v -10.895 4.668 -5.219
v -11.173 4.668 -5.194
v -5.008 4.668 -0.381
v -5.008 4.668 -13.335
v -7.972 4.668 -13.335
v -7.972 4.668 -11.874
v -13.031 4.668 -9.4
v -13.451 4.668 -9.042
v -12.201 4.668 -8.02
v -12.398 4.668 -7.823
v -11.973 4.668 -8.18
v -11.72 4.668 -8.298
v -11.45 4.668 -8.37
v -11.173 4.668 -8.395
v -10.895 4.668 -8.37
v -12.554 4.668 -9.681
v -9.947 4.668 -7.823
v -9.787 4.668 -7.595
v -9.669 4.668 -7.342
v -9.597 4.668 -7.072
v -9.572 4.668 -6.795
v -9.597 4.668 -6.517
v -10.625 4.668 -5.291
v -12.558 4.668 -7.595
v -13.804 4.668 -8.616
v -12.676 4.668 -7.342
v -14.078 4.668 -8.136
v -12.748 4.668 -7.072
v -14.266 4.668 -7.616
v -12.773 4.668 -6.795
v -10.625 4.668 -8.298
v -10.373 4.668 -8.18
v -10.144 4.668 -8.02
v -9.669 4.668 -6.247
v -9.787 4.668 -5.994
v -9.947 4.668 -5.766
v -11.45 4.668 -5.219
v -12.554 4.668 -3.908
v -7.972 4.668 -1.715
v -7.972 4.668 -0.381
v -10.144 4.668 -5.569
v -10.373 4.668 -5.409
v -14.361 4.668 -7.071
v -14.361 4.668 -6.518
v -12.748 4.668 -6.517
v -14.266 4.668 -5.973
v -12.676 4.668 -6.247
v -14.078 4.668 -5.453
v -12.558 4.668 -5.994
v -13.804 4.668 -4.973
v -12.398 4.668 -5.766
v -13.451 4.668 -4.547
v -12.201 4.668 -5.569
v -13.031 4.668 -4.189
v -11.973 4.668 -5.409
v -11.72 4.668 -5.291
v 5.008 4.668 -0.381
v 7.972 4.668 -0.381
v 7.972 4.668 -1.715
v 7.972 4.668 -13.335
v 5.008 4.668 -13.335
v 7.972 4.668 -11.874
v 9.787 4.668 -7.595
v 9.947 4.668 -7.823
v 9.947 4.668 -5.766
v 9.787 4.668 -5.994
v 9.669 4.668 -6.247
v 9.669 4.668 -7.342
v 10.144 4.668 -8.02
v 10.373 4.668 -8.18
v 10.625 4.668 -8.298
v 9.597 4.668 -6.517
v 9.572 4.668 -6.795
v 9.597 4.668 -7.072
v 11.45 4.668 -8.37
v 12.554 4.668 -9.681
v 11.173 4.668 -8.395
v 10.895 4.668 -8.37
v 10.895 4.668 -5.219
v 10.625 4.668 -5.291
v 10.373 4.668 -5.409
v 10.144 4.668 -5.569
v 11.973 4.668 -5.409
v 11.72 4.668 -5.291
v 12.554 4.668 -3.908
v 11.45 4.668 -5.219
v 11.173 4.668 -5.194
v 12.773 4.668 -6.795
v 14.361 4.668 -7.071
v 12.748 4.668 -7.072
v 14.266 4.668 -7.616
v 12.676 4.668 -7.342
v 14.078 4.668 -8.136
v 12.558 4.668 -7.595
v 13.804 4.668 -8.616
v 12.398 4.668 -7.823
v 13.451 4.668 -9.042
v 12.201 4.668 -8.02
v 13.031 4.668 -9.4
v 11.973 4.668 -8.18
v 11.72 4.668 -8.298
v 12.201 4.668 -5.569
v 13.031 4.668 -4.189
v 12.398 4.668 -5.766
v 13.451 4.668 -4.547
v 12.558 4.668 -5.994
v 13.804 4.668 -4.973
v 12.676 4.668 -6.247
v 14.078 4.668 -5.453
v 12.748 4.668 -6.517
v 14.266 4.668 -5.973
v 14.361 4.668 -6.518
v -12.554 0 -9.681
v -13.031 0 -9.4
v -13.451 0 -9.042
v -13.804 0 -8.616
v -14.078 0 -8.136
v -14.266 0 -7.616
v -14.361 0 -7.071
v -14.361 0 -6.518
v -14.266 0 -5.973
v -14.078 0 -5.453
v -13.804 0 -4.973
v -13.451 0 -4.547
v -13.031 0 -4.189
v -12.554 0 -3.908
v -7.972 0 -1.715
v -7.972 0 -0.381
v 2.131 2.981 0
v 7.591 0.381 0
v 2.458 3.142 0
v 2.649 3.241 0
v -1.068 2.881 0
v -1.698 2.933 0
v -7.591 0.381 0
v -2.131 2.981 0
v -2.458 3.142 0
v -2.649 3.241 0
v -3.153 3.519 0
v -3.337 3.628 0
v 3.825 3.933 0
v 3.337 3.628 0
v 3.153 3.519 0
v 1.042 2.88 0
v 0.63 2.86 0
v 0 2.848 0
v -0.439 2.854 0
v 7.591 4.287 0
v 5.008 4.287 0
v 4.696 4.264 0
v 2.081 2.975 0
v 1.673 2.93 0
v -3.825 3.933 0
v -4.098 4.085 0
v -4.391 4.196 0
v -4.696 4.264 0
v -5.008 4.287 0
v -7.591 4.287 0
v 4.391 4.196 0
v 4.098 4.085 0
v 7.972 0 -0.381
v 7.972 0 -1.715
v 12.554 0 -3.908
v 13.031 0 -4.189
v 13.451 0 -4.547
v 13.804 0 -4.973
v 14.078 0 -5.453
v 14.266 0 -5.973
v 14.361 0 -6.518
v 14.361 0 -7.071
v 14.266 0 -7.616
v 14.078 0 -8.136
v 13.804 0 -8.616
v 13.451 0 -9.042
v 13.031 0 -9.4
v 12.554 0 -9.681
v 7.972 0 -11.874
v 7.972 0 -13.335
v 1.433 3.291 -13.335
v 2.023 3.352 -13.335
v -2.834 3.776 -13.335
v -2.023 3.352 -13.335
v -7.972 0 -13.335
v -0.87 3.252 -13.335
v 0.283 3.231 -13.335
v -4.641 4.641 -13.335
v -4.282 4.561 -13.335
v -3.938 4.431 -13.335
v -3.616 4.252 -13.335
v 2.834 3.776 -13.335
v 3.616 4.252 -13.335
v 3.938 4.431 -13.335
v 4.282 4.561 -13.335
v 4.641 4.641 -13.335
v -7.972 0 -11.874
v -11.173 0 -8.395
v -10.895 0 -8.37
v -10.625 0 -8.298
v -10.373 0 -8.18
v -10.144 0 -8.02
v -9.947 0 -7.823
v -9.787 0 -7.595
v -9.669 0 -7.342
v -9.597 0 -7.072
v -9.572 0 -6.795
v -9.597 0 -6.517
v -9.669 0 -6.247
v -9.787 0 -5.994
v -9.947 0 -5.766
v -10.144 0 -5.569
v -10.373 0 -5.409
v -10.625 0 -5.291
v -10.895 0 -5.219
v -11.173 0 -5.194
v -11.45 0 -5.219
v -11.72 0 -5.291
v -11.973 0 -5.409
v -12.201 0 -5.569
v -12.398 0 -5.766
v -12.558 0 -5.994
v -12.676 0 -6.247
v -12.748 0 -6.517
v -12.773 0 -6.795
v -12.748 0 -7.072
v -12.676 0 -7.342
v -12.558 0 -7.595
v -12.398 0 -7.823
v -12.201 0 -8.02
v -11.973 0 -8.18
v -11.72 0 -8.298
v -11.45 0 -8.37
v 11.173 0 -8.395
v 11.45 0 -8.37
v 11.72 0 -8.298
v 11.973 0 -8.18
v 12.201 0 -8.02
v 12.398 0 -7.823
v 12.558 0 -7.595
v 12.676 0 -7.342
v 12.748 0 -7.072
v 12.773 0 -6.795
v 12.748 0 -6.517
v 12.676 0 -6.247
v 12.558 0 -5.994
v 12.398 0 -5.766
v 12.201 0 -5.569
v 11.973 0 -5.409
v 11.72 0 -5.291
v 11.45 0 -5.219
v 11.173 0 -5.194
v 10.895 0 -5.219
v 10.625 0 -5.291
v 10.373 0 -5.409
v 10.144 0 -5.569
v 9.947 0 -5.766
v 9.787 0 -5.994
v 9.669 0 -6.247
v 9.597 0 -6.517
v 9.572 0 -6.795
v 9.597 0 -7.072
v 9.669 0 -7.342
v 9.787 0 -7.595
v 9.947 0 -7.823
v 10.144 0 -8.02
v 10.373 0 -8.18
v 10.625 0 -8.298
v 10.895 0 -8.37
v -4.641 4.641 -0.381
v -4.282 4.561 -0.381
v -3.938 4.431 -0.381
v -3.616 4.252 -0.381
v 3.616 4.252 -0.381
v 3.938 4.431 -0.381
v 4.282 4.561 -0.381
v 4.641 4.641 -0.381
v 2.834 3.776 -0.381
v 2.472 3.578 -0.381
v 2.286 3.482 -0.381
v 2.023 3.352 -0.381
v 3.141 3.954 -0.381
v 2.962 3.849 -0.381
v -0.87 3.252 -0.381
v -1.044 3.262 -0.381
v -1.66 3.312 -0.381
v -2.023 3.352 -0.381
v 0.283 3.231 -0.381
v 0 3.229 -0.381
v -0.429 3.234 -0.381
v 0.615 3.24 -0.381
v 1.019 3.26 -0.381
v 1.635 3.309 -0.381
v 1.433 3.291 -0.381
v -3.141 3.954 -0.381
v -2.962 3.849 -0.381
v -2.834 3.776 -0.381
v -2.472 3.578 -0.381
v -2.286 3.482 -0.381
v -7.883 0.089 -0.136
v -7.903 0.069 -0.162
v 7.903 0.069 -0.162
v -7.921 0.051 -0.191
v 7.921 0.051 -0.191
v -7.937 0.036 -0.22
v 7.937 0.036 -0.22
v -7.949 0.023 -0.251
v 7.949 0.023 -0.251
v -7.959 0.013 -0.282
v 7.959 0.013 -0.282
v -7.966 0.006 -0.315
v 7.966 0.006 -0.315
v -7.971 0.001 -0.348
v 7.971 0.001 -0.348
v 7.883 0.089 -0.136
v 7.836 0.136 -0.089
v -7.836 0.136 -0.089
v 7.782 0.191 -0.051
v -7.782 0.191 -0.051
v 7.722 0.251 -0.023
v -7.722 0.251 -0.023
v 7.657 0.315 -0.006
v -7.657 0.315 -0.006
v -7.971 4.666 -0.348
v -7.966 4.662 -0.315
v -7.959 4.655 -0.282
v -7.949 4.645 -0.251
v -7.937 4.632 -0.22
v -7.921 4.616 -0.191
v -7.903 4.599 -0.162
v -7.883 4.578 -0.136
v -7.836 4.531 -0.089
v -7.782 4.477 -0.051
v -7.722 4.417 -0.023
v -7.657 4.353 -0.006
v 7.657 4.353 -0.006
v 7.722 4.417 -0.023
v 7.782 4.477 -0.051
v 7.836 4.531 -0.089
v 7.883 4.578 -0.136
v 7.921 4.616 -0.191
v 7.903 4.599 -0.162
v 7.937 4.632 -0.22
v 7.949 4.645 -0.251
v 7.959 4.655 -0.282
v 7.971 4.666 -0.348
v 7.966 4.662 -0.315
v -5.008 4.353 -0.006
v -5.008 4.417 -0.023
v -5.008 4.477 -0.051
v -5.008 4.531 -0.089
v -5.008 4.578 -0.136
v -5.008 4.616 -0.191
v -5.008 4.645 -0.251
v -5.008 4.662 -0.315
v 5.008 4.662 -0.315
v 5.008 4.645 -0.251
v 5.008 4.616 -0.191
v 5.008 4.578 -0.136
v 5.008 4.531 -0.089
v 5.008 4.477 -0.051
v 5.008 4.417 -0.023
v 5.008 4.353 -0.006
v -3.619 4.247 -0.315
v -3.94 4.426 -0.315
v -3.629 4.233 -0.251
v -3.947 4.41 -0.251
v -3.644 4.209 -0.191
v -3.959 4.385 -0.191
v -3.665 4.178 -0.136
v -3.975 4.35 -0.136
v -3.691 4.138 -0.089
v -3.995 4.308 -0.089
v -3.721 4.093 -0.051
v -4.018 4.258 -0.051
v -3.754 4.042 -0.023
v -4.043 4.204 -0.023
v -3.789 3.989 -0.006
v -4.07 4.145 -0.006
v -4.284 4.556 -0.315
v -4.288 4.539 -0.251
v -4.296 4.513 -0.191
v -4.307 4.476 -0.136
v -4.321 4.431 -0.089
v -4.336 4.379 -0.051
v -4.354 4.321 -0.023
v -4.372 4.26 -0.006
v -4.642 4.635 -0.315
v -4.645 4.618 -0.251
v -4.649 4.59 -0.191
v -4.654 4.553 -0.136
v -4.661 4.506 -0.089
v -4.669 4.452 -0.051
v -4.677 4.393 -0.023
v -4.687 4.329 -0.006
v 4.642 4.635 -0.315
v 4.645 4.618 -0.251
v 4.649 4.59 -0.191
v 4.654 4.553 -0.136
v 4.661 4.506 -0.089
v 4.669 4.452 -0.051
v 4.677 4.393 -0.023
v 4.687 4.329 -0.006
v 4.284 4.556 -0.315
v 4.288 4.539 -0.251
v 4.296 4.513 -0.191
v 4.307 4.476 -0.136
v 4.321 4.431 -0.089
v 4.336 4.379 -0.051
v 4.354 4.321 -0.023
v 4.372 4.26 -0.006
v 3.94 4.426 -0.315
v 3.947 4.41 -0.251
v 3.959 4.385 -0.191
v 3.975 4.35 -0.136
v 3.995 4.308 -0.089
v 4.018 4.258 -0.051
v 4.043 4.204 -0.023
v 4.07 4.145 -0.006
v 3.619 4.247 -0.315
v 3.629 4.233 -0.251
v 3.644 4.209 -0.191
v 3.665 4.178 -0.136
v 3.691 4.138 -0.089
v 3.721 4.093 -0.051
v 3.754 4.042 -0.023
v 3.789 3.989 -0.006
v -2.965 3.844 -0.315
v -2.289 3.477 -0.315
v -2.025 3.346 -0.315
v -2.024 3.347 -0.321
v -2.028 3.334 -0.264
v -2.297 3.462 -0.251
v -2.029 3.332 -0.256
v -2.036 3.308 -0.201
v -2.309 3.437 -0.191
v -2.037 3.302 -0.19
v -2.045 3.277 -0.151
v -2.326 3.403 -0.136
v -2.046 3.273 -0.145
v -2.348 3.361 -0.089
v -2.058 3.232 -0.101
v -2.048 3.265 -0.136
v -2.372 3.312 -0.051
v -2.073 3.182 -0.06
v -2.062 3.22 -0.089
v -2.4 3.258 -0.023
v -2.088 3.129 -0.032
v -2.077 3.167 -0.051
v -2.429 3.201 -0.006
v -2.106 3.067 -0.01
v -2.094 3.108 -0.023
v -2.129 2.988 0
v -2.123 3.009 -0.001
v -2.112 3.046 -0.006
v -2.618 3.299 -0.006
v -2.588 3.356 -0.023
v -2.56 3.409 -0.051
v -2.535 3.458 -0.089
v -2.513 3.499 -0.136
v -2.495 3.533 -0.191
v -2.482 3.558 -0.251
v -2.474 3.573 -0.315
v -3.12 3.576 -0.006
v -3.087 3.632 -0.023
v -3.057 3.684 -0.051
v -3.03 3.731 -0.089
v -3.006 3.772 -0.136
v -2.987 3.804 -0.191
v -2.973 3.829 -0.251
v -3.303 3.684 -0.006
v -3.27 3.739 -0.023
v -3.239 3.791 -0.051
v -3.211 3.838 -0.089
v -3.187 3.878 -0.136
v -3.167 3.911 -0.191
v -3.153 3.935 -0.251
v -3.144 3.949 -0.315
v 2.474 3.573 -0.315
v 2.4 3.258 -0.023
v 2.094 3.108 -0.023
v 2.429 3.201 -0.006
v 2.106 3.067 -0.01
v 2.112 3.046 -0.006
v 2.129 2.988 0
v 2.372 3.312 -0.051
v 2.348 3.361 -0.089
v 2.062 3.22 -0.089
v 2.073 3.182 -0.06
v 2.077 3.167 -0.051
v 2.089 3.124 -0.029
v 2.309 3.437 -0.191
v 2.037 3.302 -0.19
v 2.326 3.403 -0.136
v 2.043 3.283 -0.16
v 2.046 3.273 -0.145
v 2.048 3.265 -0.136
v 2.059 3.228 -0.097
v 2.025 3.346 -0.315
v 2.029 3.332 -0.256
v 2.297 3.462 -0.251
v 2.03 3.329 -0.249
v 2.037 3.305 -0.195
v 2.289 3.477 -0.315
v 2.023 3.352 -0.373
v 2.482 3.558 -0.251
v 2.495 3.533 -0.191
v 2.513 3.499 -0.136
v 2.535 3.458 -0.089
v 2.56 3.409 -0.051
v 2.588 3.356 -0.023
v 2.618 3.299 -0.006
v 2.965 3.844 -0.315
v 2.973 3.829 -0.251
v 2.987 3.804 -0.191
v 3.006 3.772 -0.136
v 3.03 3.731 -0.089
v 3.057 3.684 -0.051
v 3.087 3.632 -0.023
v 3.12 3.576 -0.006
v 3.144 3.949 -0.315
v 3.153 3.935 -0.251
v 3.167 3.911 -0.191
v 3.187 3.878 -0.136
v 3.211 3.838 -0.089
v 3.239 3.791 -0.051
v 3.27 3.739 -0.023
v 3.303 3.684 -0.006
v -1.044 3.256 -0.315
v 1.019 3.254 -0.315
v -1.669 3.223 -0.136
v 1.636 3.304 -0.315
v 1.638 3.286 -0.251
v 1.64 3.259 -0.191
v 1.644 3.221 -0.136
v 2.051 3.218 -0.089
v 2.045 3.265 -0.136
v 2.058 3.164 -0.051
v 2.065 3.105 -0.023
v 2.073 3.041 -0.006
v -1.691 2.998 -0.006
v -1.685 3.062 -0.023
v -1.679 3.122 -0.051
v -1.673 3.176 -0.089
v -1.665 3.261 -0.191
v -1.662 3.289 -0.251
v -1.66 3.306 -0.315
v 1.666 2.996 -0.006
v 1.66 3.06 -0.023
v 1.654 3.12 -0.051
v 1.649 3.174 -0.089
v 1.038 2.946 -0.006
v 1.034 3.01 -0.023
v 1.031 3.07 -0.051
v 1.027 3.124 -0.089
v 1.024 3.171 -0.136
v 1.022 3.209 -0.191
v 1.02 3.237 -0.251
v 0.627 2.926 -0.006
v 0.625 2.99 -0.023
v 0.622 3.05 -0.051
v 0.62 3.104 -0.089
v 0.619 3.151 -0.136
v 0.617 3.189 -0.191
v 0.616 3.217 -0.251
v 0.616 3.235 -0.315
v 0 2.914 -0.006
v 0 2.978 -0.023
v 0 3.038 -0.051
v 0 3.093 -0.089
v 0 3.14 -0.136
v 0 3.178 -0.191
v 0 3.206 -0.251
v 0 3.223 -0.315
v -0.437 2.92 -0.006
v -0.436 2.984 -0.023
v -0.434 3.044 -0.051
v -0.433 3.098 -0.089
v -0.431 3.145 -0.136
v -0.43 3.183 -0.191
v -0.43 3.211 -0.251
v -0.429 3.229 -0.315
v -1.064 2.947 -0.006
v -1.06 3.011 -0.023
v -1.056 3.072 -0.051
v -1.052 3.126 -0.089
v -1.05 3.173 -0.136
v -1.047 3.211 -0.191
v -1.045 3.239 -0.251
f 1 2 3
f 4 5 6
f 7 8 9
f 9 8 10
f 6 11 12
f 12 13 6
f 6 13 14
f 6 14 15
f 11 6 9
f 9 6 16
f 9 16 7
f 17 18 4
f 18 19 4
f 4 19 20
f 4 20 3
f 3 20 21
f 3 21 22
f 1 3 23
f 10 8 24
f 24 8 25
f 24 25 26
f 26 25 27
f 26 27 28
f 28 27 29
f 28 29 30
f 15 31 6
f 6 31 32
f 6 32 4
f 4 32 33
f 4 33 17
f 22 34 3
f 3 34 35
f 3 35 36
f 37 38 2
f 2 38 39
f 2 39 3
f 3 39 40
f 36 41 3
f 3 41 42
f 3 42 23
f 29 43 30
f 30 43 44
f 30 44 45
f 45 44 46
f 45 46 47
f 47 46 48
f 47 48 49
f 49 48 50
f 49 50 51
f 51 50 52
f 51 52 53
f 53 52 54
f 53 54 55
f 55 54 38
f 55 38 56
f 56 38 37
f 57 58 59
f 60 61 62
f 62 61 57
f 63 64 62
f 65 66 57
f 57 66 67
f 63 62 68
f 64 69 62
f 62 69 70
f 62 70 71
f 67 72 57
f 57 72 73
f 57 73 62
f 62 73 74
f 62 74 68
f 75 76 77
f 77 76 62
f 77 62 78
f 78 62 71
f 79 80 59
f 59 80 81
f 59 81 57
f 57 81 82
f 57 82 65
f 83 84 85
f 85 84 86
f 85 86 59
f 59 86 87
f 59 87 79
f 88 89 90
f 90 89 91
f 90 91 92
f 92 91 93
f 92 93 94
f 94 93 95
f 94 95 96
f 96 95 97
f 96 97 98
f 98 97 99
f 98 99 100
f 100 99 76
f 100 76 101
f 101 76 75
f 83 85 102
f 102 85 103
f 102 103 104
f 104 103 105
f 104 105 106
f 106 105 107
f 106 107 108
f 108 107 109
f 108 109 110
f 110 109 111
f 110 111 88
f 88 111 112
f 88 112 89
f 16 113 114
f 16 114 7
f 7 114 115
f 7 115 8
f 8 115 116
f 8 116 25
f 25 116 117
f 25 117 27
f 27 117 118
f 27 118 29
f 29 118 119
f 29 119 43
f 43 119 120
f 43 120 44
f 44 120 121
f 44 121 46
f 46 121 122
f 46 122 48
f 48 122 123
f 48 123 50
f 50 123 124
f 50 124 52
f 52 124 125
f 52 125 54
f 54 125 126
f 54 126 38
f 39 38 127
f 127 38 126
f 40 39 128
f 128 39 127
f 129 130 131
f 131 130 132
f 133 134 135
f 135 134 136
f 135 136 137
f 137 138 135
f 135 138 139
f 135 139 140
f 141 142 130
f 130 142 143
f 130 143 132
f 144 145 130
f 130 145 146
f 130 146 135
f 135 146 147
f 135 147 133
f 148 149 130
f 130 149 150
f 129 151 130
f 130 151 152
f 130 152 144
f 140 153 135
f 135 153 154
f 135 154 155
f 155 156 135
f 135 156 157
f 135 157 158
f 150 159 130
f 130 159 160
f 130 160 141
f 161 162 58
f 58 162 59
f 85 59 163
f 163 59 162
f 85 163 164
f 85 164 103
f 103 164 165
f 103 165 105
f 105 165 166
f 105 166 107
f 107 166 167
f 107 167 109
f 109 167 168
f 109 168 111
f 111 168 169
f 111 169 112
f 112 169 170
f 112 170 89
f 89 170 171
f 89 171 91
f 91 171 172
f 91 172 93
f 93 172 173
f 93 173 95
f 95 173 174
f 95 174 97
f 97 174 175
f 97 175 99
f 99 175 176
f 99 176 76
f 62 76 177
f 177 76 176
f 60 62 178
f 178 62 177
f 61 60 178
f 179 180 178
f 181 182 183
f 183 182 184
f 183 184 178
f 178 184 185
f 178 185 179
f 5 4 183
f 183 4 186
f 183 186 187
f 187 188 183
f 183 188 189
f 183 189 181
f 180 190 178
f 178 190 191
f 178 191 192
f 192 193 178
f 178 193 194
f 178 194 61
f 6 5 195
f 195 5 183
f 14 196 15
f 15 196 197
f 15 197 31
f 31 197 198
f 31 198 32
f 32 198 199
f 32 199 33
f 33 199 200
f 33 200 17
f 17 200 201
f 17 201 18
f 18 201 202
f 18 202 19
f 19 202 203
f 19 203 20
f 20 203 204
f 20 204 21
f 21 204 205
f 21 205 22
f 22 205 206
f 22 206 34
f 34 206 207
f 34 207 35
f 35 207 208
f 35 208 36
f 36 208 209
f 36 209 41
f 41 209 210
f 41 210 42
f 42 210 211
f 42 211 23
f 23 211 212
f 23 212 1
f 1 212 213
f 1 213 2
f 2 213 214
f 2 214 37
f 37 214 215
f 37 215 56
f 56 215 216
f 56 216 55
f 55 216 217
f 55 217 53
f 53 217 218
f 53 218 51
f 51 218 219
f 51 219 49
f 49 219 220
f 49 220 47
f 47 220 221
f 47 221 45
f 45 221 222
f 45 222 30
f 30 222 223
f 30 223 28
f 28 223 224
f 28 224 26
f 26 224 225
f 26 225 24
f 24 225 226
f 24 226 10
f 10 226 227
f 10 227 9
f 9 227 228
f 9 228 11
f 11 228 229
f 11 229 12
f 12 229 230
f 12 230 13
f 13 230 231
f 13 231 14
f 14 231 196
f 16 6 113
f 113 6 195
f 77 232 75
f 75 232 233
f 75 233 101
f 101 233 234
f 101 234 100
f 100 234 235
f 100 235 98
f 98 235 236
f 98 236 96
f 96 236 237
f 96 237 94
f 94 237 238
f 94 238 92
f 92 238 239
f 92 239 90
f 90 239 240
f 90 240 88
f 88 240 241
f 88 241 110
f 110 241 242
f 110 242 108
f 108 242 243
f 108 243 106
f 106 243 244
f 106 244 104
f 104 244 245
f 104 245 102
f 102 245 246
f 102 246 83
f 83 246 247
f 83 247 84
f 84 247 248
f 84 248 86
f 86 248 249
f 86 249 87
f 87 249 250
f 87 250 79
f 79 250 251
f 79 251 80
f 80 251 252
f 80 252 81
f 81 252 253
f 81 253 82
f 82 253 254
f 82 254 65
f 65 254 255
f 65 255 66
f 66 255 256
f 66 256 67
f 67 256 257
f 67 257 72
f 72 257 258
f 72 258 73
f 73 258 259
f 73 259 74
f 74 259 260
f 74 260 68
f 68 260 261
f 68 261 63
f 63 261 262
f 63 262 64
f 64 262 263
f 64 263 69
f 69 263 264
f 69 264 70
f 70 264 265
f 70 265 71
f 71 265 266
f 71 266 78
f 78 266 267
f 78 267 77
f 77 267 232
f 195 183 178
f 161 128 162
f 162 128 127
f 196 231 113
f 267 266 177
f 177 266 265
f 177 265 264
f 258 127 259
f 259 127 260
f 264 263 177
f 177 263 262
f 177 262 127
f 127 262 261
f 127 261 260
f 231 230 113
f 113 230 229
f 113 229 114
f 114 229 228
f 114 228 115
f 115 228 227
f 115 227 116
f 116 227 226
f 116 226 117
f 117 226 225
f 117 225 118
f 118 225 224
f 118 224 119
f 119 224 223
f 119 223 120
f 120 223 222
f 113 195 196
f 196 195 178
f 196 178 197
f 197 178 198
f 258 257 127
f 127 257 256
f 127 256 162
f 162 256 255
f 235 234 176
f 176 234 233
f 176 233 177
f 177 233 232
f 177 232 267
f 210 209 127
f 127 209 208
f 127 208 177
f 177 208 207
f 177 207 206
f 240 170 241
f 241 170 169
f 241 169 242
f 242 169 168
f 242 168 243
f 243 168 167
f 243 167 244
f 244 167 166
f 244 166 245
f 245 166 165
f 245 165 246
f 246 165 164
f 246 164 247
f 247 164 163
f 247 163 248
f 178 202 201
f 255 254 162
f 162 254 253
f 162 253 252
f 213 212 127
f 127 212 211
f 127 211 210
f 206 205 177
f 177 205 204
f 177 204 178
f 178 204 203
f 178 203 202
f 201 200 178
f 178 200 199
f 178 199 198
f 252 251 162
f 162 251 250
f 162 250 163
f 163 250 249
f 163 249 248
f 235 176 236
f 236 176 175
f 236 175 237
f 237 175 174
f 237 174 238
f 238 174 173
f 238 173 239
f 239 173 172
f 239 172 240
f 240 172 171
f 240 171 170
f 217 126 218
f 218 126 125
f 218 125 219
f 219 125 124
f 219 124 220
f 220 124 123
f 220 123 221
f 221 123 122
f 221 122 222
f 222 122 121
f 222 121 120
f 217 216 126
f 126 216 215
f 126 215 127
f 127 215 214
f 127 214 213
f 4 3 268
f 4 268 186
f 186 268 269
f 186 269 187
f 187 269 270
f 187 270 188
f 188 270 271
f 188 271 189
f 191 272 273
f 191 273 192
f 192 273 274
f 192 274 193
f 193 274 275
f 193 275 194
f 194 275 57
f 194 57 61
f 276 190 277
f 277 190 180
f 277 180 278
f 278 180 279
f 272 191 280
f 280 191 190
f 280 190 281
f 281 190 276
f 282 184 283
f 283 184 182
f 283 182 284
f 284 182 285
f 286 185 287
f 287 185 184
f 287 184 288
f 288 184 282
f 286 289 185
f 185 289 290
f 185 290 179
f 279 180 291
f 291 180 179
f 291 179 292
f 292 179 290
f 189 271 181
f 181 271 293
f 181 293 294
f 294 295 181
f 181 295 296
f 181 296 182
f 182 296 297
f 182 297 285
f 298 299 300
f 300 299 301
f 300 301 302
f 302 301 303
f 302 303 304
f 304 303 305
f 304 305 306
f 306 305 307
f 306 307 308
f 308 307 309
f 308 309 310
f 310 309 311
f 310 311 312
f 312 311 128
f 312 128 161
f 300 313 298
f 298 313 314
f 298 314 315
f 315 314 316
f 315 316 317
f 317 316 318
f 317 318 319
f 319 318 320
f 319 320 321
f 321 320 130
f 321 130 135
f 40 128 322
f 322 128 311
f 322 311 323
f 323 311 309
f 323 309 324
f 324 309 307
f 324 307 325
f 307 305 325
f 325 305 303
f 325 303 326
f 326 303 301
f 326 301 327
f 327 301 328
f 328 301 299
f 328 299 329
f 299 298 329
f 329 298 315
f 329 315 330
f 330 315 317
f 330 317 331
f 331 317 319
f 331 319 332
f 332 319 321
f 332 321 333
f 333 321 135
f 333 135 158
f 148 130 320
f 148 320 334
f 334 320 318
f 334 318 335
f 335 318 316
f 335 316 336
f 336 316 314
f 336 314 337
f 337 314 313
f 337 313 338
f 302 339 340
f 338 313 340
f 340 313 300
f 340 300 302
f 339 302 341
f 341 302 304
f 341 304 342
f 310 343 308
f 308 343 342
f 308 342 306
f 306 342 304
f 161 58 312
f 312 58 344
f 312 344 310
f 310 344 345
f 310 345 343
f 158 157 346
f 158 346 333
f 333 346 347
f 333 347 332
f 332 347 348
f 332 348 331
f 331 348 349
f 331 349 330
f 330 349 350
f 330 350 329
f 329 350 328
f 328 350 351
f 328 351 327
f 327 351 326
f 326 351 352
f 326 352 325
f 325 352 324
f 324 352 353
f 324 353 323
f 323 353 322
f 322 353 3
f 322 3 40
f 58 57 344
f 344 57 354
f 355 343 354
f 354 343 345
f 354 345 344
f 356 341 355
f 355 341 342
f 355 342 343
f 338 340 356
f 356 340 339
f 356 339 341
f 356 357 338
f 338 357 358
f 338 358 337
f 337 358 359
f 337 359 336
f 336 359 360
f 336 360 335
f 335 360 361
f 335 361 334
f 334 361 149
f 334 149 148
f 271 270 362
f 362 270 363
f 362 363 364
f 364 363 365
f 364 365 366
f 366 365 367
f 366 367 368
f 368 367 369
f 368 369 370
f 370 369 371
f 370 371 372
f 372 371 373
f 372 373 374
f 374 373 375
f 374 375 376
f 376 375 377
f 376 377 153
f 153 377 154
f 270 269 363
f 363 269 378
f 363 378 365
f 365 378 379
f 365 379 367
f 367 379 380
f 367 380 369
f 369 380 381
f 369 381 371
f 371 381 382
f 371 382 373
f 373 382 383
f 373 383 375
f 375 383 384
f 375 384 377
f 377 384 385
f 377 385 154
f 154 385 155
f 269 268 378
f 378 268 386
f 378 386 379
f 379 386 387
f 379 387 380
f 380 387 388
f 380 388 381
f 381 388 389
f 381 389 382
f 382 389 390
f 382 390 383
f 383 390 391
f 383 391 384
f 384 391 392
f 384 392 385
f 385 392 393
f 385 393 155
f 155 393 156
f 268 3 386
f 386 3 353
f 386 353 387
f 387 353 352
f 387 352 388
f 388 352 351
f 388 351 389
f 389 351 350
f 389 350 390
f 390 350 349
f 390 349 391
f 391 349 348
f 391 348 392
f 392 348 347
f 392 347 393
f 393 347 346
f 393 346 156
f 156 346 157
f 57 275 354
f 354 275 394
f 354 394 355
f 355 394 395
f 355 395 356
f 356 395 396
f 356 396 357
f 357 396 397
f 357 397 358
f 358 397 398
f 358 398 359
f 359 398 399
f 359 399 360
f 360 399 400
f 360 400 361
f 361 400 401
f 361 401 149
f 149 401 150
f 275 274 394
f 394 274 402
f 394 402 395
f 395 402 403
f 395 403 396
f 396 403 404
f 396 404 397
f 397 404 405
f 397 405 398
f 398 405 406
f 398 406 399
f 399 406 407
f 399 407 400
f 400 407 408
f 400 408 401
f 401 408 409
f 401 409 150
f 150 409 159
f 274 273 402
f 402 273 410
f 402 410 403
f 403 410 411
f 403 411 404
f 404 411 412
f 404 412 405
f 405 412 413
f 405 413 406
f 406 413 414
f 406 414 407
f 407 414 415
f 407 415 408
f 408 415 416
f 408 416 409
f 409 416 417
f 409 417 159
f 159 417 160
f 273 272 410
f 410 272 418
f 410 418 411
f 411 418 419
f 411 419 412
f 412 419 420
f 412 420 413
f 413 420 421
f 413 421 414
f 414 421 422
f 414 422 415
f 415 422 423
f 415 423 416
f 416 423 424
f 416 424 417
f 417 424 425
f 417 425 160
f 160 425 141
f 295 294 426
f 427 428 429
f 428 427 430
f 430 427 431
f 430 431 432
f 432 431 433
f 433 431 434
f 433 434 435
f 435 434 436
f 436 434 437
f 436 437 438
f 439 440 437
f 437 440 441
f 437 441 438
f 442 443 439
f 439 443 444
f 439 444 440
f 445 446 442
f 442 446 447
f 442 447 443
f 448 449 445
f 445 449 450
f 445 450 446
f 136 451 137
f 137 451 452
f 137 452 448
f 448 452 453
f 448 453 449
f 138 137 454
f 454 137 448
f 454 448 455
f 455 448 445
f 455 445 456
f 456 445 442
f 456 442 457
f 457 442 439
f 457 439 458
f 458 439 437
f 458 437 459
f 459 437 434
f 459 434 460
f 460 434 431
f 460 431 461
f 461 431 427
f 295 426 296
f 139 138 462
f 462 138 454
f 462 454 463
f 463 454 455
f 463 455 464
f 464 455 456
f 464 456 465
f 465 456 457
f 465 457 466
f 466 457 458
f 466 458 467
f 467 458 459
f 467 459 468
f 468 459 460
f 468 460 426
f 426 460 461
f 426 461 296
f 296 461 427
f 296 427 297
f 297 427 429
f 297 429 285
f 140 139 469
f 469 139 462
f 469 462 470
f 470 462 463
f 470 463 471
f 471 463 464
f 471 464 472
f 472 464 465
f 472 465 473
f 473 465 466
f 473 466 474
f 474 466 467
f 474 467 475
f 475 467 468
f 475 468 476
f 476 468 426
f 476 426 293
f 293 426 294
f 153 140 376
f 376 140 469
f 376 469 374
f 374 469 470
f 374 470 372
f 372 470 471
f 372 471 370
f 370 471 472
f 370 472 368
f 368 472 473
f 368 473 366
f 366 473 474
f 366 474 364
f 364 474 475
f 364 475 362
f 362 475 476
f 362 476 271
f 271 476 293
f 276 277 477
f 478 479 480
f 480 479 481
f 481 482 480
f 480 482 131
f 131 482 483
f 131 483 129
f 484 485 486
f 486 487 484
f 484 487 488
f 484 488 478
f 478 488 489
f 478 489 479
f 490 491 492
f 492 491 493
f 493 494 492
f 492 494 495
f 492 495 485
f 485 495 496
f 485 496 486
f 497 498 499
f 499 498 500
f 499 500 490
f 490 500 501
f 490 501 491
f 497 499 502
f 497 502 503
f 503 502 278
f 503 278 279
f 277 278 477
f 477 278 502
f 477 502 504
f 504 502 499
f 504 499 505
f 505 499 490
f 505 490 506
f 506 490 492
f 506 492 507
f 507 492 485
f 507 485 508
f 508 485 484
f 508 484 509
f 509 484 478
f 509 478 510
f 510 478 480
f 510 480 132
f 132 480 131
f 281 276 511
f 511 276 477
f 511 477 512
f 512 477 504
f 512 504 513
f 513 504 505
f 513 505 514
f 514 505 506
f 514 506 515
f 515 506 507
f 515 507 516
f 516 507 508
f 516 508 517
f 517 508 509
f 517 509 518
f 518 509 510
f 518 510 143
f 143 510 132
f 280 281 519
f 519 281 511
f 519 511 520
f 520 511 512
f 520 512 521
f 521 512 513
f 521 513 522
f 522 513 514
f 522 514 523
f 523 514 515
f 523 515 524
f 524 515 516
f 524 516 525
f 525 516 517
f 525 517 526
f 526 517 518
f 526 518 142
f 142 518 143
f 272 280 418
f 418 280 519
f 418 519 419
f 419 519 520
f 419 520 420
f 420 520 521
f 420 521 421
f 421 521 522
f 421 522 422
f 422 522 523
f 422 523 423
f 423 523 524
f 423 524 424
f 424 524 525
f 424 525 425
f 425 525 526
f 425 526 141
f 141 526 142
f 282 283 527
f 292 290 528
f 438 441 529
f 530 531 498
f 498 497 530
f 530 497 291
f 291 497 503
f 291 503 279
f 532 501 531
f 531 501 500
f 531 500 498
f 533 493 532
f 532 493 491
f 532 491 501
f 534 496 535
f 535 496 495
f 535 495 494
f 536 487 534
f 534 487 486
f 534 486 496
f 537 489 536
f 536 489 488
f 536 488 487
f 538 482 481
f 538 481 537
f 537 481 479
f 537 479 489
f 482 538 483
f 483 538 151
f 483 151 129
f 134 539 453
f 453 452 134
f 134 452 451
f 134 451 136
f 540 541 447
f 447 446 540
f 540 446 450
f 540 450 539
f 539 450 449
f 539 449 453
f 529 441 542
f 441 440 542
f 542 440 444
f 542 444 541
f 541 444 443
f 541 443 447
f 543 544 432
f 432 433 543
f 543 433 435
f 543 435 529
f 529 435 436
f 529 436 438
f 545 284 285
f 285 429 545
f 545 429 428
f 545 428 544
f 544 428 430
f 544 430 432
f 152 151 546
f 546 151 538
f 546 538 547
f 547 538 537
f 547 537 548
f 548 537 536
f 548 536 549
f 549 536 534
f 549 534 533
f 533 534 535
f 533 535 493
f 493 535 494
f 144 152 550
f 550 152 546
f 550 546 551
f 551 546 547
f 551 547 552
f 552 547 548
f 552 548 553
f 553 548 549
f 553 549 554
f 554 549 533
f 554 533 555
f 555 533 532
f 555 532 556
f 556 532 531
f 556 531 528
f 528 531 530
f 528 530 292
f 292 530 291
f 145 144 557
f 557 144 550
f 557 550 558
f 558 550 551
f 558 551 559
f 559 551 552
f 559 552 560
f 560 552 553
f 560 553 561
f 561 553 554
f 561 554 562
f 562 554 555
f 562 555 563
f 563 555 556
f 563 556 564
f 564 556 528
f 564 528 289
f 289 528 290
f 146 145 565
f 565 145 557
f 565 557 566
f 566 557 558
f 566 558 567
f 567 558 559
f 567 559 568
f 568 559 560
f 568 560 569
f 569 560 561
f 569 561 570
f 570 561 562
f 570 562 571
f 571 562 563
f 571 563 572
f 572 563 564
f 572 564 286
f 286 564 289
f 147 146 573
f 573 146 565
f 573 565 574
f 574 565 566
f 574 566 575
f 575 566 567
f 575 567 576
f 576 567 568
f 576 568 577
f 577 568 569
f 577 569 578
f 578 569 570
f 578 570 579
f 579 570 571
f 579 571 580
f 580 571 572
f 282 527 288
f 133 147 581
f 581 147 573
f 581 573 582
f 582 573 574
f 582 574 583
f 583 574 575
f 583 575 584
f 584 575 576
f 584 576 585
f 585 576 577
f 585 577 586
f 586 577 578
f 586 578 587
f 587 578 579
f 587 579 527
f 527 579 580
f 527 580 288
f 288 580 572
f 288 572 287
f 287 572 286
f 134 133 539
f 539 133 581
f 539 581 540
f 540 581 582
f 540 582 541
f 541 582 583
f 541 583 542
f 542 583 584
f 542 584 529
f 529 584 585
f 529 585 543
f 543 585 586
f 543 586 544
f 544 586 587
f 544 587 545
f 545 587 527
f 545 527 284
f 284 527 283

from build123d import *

# Parameters (mm, degrees)
SKETCH2_R           = 1.6002
BOSS_EXTRUDE1_DEPTH = 4.667499936
CUT_EXTRUDE1_DEPTH  = 21.154182295
FILLET4_R           = 0.381


with BuildPart() as part:
    # Sketch2 → Boss-Extrude1 (new body)
    with BuildSketch(Plane(origin=(0, 0, 0), x_dir=(1, 0, 0), z_dir=(0, 1, 0))):
        with BuildLine():
            Line((-7.972205369, 13.335), (-7.972205369, 11.8745))
            Line((-7.972205369, 11.8745), (-12.55435155, 9.681252094))
            ThreePointArc((-12.55435155, 9.681252094), (-14.373005369, 6.7945), (-12.55435155, 3.907747906))
            Line((-12.55435155, 3.907747906), (-7.972205369, 1.7145))
            Line((-7.972205369, 1.7145), (-7.972205369, 0))
            Line((-7.972205369, 0), (7.972205369, 0))
            Line((7.972205369, 0), (7.972205369, 1.7145))
            Line((7.972205369, 1.7145), (12.55435155, 3.907747906))
            ThreePointArc((12.55435155, 3.907747906), (14.373005369, 6.7945), (12.55435155, 9.681252094))
            Line((12.55435155, 9.681252094), (7.972205369, 11.8745))
            Line((7.972205369, 11.8745), (7.972205369, 13.335))
            Line((7.972205369, 13.335), (-7.972205369, 13.335))
        make_face()
        with Locations(Location((-11.172605369, 6.7945, 0), (0, 0, 270))):
            Circle(SKETCH2_R, mode=Mode.SUBTRACT)
        with Locations(Location((11.172605369, 6.7945, 0), (0, 0, 270))):
            Circle(SKETCH2_R, mode=Mode.SUBTRACT)
    extrude(amount=BOSS_EXTRUDE1_DEPTH)

    # Sketch1 → Cut-Extrude1 (cut, through all)
    with BuildSketch(Plane.XY):
        with BuildLine():
            Line((-2.413, 4.667499936), (-5.008252596, 4.667499936))
            ThreePointArc((-5.008252596, 4.667499936), (-4.93107218, 4.666327064), (-4.853963042, 4.662809529))
            ThreePointArc((-4.853963042, 4.662809529), (-4.208266886, 4.53823071), (-3.616192862, 4.25206335))
            add(Edge.make_bspline(
                [(-3.616192862, 4.25206335), (-3.387788659, 4.102407993), (-2.866953164, 3.782649369), (-2.327154274, 3.498343868), (-2.022863606, 3.35198033)],
                knots=[0.154249258, 0.154249258, 0.154249258, 0.154249258, 0.327774555, 0.542511986, 0.542511986, 0.542511986, 0.542511986], degree=3))
            ThreePointArc((-2.022863606, 3.35198033), (-2.313410781, 3.981424459), (-2.413, 4.667499936))
        make_face()
        with BuildLine():
            Line((0, 4.667499936), (-2.413, 4.667499936))
            ThreePointArc((-2.413, 4.667499936), (-2.313410781, 3.981424459), (-2.022863606, 3.35198033))
            Line((-2.022863606, 3.35198033), (0, 3.35198033))
            Line((0, 3.35198033), (0, 4.667499936))
        make_face()
        with BuildLine():
            Line((2.413, 4.667499936), (0, 4.667499936))
            Line((0, 4.667499936), (0, 3.35198033))
            Line((0, 3.35198033), (2.022863606, 3.35198033))
            ThreePointArc((2.022863606, 3.35198033), (2.313410781, 3.981424459), (2.413, 4.667499936))
        make_face()
        with BuildLine():
            Line((0, 3.35198033), (-2.022863606, 3.35198033))
            add(Edge.make_bspline(
                [(-2.022863606, 3.35198033), (-1.011431803, 3.228904982), (0, 3.228904982)],
                knots=[0, 0, 0, 0.5, 0.5, 0.5], degree=2))
            Line((0, 3.228904982), (0, 3.35198033))
        make_face()
        with BuildLine():
            Line((2.022863606, 3.35198033), (0, 3.35198033))
            Line((0, 3.35198033), (0, 3.228904982))
            add(Edge.make_bspline(
                [(0, 3.228904982), (1.011431803, 3.228904982), (2.022863606, 3.35198033)],
                knots=[0.5, 0.5, 0.5, 1, 1, 1], degree=2))
        make_face()
        with BuildLine():
            Line((5.008252596, 4.667499936), (2.413, 4.667499936))
            ThreePointArc((2.413, 4.667499936), (2.313410781, 3.981424459), (2.022863606, 3.35198033))
            add(Edge.make_bspline(
                [(3.616192862, 4.25206335), (3.387788659, 4.102407993), (2.866953164, 3.782649369), (2.327154274, 3.498343868), (2.022863606, 3.35198033)],
                knots=[0.154249258, 0.154249258, 0.154249258, 0.154249258, 0.327774555, 0.542511986, 0.542511986, 0.542511986, 0.542511986], degree=3))
            ThreePointArc((3.616192862, 4.25206335), (4.208266886, 4.53823071), (4.853963042, 4.662809529))
            ThreePointArc((4.853963042, 4.662809529), (4.93107218, 4.666327064), (5.008252596, 4.667499936))
        make_face()
    extrude(amount=-CUT_EXTRUDE1_DEPTH, mode=Mode.SUBTRACT)

    # Fillet4
    fillet4_edges = [part.edges().sort_by_distance(p)[0] for p in [
        (0, 0, 0),
        (-6.490228982, 4.667499936, 0),
        (7.972205369, 2.333749968, 0),
        (-7.972205369, 2.333749968, 0),
        (6.490228982, 4.667499936, 0),
        (4.28188873, 4.561425887, 0),
        (2.834354543, 3.775775499, 0),
        (-4.28188873, 4.561425887, 0),
        (-2.834354543, 3.775775499, 0),
        (1.013295224, 3.259787298, 0),
    ]]
    fillet(fillet4_edges, radius=FILLET4_R)


solid = part.part
